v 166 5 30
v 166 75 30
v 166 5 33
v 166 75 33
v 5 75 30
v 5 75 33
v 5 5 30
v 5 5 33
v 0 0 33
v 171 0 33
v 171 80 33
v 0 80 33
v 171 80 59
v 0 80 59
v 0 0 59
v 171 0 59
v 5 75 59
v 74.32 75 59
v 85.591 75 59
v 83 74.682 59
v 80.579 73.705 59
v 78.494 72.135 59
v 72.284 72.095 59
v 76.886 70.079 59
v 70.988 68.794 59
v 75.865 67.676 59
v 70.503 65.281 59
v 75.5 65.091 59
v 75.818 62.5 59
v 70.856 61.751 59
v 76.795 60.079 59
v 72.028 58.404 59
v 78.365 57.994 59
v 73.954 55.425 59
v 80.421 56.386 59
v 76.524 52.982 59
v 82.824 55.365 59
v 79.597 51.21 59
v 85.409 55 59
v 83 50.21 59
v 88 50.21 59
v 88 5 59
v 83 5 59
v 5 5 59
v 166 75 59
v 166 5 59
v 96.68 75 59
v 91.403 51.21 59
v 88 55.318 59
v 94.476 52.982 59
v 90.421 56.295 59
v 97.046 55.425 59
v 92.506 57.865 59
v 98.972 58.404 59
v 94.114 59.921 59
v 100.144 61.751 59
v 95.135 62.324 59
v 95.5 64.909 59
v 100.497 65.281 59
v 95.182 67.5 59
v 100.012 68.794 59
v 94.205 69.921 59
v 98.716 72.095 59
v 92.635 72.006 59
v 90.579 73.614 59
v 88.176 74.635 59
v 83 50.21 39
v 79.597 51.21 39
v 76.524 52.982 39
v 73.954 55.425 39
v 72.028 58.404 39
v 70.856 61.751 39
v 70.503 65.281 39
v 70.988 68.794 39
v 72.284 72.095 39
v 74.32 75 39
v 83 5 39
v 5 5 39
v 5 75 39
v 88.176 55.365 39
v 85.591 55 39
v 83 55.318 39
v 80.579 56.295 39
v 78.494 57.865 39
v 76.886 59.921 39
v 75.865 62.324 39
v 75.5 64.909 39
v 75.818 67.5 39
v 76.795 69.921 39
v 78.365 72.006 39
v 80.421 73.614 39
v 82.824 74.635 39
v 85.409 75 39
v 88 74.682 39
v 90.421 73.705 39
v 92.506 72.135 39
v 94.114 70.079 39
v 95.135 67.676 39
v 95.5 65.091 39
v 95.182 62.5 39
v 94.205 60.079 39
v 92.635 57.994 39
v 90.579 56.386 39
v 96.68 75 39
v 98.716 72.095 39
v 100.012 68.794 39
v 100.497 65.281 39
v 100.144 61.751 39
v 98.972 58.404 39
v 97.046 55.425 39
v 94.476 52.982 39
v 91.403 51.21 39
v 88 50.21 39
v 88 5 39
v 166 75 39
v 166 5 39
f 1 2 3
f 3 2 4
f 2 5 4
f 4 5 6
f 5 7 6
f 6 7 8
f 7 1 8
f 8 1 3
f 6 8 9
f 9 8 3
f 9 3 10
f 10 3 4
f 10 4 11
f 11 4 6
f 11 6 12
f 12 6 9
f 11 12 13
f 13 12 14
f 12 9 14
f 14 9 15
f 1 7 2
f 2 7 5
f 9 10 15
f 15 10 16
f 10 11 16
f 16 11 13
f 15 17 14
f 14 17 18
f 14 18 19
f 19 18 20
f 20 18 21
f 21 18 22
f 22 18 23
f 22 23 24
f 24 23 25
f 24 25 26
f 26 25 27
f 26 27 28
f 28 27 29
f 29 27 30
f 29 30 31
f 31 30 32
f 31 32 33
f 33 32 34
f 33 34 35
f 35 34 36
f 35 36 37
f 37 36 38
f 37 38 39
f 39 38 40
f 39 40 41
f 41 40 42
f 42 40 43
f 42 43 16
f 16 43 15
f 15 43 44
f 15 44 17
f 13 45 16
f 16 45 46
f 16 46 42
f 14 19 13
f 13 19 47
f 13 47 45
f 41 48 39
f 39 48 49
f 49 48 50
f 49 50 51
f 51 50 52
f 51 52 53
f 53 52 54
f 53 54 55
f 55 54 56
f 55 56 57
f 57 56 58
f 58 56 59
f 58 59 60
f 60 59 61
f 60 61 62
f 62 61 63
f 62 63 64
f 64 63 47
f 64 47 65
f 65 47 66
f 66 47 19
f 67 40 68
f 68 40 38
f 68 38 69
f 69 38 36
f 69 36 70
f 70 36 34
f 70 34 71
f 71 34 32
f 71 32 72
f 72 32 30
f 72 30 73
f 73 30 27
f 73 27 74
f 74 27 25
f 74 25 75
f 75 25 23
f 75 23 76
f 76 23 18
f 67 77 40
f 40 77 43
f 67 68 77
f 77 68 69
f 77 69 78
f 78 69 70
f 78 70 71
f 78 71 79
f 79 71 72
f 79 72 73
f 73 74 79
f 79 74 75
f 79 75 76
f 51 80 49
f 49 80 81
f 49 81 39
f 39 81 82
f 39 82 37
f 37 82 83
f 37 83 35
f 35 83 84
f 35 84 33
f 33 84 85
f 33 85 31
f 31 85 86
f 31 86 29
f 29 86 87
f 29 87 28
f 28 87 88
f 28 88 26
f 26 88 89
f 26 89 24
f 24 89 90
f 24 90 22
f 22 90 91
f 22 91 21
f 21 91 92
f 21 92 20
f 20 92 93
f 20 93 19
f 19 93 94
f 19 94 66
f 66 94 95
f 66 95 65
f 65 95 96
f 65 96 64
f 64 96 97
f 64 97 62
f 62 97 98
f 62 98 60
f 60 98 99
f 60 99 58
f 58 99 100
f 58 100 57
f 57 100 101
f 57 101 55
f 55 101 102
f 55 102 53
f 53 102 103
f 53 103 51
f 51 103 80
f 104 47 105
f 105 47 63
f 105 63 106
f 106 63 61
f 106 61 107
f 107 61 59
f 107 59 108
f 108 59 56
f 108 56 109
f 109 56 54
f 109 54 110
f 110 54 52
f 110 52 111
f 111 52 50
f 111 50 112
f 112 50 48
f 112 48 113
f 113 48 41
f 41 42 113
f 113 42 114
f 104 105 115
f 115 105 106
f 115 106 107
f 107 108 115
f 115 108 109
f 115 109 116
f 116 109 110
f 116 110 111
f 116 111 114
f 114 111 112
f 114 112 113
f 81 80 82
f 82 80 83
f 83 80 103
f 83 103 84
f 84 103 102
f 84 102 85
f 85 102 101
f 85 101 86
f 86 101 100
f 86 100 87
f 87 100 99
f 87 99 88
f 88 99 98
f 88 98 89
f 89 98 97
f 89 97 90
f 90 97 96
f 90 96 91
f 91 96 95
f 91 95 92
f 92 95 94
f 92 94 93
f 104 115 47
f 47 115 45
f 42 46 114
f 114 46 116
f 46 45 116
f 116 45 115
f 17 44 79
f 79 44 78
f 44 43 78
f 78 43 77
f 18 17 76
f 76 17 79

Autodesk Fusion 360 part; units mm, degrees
sketch "Sketch1" plane through (0, 0, 0) normal (0, 0, 1) x (1, 0, 0)
  line L0 (0, 0) -> (171, 0)
  line L1 (171, 0) -> (171, 80)
  line L2 (171, 80) -> (0, 80)
  line L3 (0, 80) -> (0, 0)
  dimension "d1" = 171
  dimension "d2" = 80
extrude "Extrude1" add sketch "Sketch1" along normal blind 59
sketch "Sketch2" plane through (0, 0, 59) normal (0, 0, 1) x (-1, 0, 0)
  line L0 (0, -80) -> (0, 0)
  line L1 (0, 0) -> (-171, 0)
  line L2 (-171, 0) -> (-171, -80)
  line L3 (-171, -80) -> (0, -80)
  line L4 (-166, -5) -> (-88, -5)
  line L5 (-88, -5) -> (-88, -75)
  line L6 (-88, -75) -> (-166, -75)
  line L7 (-166, -75) -> (-166, -5)
  line L8 (-85.5, 0) -> (-85.5, -80)
  line L9 (-5, -5) -> (-83, -5)
  line L10 (-5, -75) -> (-5, -5)
  line L11 (-83, -5) -> (-83, -75)
  line L12 (-83, -75) -> (-5, -75)
  dimension "d5" = 85.5
  dimension "d6" = 70
  dimension "d8" = 5
  dimension "d9" = 5
  dimension "d10" = 2.5
  dimension "d11" = 5
extrude "Extrude2" cut sketch "Sketch2" against normal blind 10 contours L4 L5 L6 L7 | L9 L10 L11 L12
extrude "Extrude3" cut 2 faces at (57, 28.3333, 49) (140, 28.3333, 49) along direction (0, 0, -1) blind 10
sketch "Sketch3" plane through (0, 0, 59) normal (0, 0, 1) x (-1, 0, 0)
  line L0 (-88, -5) -> (-88, -75)
  line L1 (-88, -75) -> (-166, -75)
  line L2 (-166, -75) -> (-166, -5)
  line L3 (-166, -5) -> (-88, -5)
  line L4 (-5, -5) -> (-5, -75)
  line L5 (-5, -75) -> (-83, -75)
  line L6 (-83, -75) -> (-83, -5)
  line L7 (-83, -5) -> (-5, -5)
  line L8 (0, -80) -> (0, 0)
  line L9 (0, 0) -> (-171, 0)
  line L10 (-171, 0) -> (-171, -80)
  line L11 (-171, -80) -> (0, -80)
  circle A0 centre (-85.5, -65) radius 10
  line L12 (-85.5, 0) -> (-85.5, -80)
  line L13 (-83, -75) -> (-5, -75)
  circle A1 centre (-85.5, -65) radius 15
  dimension "d16" = 20
  dimension "d17" = 10
  dimension "d18" = 30
extrude "Extrude4" add sketch "Sketch3" against normal blind 20 contours L0 L1 A0 A1 | L5 L6 A0 L13 A1
extrude "Extrude5" cut sketch "Sketch3" against normal blind 20 contours L0 A0 L12 | L6 A0 L12
sketch "Sketch4" plane through (0, 0, 0) normal (0, -1, 0) x (1, 0, 0)
  line L0 (0, 0) -> (171, 0)
  line L1 (171, 0) -> (171, 59)
  line L2 (171, 59) -> (0, 59)
  line L3 (0, 59) -> (0, 0)
  line L4 (0, 0) -> (171, 0)
  line L5 (171, 0) -> (171, 30)
  line L6 (171, 30) -> (0, 30)
  line L7 (0, 30) -> (0, 0)
  dimension "d23" = 30
extrude "Extrude6" cut sketch "Sketch4" against normal blind 80 contours L0 L1 L3 L4 L5 L6 L7
sketch "Sketch5" plane through (0, 0, 30) normal (0, 0, -1) x (1, 0, 0)
  line L0 (171, 0) -> (0, 0)
  line L1 (0, 0) -> (0, -80)
  line L2 (0, -80) -> (171, -80)
  line L3 (171, -80) -> (171, 0)
  line L4 (166, -75) -> (5, -75)
  line L5 (5, -75) -> (5, -5)
  line L6 (5, -5) -> (166, -5)
  line L7 (166, -5) -> (166, -75)
  point P0 (166, -75)
  point P1 (5, -5)
extrude "Extrude7" cut sketch "Sketch5" against normal blind 3
